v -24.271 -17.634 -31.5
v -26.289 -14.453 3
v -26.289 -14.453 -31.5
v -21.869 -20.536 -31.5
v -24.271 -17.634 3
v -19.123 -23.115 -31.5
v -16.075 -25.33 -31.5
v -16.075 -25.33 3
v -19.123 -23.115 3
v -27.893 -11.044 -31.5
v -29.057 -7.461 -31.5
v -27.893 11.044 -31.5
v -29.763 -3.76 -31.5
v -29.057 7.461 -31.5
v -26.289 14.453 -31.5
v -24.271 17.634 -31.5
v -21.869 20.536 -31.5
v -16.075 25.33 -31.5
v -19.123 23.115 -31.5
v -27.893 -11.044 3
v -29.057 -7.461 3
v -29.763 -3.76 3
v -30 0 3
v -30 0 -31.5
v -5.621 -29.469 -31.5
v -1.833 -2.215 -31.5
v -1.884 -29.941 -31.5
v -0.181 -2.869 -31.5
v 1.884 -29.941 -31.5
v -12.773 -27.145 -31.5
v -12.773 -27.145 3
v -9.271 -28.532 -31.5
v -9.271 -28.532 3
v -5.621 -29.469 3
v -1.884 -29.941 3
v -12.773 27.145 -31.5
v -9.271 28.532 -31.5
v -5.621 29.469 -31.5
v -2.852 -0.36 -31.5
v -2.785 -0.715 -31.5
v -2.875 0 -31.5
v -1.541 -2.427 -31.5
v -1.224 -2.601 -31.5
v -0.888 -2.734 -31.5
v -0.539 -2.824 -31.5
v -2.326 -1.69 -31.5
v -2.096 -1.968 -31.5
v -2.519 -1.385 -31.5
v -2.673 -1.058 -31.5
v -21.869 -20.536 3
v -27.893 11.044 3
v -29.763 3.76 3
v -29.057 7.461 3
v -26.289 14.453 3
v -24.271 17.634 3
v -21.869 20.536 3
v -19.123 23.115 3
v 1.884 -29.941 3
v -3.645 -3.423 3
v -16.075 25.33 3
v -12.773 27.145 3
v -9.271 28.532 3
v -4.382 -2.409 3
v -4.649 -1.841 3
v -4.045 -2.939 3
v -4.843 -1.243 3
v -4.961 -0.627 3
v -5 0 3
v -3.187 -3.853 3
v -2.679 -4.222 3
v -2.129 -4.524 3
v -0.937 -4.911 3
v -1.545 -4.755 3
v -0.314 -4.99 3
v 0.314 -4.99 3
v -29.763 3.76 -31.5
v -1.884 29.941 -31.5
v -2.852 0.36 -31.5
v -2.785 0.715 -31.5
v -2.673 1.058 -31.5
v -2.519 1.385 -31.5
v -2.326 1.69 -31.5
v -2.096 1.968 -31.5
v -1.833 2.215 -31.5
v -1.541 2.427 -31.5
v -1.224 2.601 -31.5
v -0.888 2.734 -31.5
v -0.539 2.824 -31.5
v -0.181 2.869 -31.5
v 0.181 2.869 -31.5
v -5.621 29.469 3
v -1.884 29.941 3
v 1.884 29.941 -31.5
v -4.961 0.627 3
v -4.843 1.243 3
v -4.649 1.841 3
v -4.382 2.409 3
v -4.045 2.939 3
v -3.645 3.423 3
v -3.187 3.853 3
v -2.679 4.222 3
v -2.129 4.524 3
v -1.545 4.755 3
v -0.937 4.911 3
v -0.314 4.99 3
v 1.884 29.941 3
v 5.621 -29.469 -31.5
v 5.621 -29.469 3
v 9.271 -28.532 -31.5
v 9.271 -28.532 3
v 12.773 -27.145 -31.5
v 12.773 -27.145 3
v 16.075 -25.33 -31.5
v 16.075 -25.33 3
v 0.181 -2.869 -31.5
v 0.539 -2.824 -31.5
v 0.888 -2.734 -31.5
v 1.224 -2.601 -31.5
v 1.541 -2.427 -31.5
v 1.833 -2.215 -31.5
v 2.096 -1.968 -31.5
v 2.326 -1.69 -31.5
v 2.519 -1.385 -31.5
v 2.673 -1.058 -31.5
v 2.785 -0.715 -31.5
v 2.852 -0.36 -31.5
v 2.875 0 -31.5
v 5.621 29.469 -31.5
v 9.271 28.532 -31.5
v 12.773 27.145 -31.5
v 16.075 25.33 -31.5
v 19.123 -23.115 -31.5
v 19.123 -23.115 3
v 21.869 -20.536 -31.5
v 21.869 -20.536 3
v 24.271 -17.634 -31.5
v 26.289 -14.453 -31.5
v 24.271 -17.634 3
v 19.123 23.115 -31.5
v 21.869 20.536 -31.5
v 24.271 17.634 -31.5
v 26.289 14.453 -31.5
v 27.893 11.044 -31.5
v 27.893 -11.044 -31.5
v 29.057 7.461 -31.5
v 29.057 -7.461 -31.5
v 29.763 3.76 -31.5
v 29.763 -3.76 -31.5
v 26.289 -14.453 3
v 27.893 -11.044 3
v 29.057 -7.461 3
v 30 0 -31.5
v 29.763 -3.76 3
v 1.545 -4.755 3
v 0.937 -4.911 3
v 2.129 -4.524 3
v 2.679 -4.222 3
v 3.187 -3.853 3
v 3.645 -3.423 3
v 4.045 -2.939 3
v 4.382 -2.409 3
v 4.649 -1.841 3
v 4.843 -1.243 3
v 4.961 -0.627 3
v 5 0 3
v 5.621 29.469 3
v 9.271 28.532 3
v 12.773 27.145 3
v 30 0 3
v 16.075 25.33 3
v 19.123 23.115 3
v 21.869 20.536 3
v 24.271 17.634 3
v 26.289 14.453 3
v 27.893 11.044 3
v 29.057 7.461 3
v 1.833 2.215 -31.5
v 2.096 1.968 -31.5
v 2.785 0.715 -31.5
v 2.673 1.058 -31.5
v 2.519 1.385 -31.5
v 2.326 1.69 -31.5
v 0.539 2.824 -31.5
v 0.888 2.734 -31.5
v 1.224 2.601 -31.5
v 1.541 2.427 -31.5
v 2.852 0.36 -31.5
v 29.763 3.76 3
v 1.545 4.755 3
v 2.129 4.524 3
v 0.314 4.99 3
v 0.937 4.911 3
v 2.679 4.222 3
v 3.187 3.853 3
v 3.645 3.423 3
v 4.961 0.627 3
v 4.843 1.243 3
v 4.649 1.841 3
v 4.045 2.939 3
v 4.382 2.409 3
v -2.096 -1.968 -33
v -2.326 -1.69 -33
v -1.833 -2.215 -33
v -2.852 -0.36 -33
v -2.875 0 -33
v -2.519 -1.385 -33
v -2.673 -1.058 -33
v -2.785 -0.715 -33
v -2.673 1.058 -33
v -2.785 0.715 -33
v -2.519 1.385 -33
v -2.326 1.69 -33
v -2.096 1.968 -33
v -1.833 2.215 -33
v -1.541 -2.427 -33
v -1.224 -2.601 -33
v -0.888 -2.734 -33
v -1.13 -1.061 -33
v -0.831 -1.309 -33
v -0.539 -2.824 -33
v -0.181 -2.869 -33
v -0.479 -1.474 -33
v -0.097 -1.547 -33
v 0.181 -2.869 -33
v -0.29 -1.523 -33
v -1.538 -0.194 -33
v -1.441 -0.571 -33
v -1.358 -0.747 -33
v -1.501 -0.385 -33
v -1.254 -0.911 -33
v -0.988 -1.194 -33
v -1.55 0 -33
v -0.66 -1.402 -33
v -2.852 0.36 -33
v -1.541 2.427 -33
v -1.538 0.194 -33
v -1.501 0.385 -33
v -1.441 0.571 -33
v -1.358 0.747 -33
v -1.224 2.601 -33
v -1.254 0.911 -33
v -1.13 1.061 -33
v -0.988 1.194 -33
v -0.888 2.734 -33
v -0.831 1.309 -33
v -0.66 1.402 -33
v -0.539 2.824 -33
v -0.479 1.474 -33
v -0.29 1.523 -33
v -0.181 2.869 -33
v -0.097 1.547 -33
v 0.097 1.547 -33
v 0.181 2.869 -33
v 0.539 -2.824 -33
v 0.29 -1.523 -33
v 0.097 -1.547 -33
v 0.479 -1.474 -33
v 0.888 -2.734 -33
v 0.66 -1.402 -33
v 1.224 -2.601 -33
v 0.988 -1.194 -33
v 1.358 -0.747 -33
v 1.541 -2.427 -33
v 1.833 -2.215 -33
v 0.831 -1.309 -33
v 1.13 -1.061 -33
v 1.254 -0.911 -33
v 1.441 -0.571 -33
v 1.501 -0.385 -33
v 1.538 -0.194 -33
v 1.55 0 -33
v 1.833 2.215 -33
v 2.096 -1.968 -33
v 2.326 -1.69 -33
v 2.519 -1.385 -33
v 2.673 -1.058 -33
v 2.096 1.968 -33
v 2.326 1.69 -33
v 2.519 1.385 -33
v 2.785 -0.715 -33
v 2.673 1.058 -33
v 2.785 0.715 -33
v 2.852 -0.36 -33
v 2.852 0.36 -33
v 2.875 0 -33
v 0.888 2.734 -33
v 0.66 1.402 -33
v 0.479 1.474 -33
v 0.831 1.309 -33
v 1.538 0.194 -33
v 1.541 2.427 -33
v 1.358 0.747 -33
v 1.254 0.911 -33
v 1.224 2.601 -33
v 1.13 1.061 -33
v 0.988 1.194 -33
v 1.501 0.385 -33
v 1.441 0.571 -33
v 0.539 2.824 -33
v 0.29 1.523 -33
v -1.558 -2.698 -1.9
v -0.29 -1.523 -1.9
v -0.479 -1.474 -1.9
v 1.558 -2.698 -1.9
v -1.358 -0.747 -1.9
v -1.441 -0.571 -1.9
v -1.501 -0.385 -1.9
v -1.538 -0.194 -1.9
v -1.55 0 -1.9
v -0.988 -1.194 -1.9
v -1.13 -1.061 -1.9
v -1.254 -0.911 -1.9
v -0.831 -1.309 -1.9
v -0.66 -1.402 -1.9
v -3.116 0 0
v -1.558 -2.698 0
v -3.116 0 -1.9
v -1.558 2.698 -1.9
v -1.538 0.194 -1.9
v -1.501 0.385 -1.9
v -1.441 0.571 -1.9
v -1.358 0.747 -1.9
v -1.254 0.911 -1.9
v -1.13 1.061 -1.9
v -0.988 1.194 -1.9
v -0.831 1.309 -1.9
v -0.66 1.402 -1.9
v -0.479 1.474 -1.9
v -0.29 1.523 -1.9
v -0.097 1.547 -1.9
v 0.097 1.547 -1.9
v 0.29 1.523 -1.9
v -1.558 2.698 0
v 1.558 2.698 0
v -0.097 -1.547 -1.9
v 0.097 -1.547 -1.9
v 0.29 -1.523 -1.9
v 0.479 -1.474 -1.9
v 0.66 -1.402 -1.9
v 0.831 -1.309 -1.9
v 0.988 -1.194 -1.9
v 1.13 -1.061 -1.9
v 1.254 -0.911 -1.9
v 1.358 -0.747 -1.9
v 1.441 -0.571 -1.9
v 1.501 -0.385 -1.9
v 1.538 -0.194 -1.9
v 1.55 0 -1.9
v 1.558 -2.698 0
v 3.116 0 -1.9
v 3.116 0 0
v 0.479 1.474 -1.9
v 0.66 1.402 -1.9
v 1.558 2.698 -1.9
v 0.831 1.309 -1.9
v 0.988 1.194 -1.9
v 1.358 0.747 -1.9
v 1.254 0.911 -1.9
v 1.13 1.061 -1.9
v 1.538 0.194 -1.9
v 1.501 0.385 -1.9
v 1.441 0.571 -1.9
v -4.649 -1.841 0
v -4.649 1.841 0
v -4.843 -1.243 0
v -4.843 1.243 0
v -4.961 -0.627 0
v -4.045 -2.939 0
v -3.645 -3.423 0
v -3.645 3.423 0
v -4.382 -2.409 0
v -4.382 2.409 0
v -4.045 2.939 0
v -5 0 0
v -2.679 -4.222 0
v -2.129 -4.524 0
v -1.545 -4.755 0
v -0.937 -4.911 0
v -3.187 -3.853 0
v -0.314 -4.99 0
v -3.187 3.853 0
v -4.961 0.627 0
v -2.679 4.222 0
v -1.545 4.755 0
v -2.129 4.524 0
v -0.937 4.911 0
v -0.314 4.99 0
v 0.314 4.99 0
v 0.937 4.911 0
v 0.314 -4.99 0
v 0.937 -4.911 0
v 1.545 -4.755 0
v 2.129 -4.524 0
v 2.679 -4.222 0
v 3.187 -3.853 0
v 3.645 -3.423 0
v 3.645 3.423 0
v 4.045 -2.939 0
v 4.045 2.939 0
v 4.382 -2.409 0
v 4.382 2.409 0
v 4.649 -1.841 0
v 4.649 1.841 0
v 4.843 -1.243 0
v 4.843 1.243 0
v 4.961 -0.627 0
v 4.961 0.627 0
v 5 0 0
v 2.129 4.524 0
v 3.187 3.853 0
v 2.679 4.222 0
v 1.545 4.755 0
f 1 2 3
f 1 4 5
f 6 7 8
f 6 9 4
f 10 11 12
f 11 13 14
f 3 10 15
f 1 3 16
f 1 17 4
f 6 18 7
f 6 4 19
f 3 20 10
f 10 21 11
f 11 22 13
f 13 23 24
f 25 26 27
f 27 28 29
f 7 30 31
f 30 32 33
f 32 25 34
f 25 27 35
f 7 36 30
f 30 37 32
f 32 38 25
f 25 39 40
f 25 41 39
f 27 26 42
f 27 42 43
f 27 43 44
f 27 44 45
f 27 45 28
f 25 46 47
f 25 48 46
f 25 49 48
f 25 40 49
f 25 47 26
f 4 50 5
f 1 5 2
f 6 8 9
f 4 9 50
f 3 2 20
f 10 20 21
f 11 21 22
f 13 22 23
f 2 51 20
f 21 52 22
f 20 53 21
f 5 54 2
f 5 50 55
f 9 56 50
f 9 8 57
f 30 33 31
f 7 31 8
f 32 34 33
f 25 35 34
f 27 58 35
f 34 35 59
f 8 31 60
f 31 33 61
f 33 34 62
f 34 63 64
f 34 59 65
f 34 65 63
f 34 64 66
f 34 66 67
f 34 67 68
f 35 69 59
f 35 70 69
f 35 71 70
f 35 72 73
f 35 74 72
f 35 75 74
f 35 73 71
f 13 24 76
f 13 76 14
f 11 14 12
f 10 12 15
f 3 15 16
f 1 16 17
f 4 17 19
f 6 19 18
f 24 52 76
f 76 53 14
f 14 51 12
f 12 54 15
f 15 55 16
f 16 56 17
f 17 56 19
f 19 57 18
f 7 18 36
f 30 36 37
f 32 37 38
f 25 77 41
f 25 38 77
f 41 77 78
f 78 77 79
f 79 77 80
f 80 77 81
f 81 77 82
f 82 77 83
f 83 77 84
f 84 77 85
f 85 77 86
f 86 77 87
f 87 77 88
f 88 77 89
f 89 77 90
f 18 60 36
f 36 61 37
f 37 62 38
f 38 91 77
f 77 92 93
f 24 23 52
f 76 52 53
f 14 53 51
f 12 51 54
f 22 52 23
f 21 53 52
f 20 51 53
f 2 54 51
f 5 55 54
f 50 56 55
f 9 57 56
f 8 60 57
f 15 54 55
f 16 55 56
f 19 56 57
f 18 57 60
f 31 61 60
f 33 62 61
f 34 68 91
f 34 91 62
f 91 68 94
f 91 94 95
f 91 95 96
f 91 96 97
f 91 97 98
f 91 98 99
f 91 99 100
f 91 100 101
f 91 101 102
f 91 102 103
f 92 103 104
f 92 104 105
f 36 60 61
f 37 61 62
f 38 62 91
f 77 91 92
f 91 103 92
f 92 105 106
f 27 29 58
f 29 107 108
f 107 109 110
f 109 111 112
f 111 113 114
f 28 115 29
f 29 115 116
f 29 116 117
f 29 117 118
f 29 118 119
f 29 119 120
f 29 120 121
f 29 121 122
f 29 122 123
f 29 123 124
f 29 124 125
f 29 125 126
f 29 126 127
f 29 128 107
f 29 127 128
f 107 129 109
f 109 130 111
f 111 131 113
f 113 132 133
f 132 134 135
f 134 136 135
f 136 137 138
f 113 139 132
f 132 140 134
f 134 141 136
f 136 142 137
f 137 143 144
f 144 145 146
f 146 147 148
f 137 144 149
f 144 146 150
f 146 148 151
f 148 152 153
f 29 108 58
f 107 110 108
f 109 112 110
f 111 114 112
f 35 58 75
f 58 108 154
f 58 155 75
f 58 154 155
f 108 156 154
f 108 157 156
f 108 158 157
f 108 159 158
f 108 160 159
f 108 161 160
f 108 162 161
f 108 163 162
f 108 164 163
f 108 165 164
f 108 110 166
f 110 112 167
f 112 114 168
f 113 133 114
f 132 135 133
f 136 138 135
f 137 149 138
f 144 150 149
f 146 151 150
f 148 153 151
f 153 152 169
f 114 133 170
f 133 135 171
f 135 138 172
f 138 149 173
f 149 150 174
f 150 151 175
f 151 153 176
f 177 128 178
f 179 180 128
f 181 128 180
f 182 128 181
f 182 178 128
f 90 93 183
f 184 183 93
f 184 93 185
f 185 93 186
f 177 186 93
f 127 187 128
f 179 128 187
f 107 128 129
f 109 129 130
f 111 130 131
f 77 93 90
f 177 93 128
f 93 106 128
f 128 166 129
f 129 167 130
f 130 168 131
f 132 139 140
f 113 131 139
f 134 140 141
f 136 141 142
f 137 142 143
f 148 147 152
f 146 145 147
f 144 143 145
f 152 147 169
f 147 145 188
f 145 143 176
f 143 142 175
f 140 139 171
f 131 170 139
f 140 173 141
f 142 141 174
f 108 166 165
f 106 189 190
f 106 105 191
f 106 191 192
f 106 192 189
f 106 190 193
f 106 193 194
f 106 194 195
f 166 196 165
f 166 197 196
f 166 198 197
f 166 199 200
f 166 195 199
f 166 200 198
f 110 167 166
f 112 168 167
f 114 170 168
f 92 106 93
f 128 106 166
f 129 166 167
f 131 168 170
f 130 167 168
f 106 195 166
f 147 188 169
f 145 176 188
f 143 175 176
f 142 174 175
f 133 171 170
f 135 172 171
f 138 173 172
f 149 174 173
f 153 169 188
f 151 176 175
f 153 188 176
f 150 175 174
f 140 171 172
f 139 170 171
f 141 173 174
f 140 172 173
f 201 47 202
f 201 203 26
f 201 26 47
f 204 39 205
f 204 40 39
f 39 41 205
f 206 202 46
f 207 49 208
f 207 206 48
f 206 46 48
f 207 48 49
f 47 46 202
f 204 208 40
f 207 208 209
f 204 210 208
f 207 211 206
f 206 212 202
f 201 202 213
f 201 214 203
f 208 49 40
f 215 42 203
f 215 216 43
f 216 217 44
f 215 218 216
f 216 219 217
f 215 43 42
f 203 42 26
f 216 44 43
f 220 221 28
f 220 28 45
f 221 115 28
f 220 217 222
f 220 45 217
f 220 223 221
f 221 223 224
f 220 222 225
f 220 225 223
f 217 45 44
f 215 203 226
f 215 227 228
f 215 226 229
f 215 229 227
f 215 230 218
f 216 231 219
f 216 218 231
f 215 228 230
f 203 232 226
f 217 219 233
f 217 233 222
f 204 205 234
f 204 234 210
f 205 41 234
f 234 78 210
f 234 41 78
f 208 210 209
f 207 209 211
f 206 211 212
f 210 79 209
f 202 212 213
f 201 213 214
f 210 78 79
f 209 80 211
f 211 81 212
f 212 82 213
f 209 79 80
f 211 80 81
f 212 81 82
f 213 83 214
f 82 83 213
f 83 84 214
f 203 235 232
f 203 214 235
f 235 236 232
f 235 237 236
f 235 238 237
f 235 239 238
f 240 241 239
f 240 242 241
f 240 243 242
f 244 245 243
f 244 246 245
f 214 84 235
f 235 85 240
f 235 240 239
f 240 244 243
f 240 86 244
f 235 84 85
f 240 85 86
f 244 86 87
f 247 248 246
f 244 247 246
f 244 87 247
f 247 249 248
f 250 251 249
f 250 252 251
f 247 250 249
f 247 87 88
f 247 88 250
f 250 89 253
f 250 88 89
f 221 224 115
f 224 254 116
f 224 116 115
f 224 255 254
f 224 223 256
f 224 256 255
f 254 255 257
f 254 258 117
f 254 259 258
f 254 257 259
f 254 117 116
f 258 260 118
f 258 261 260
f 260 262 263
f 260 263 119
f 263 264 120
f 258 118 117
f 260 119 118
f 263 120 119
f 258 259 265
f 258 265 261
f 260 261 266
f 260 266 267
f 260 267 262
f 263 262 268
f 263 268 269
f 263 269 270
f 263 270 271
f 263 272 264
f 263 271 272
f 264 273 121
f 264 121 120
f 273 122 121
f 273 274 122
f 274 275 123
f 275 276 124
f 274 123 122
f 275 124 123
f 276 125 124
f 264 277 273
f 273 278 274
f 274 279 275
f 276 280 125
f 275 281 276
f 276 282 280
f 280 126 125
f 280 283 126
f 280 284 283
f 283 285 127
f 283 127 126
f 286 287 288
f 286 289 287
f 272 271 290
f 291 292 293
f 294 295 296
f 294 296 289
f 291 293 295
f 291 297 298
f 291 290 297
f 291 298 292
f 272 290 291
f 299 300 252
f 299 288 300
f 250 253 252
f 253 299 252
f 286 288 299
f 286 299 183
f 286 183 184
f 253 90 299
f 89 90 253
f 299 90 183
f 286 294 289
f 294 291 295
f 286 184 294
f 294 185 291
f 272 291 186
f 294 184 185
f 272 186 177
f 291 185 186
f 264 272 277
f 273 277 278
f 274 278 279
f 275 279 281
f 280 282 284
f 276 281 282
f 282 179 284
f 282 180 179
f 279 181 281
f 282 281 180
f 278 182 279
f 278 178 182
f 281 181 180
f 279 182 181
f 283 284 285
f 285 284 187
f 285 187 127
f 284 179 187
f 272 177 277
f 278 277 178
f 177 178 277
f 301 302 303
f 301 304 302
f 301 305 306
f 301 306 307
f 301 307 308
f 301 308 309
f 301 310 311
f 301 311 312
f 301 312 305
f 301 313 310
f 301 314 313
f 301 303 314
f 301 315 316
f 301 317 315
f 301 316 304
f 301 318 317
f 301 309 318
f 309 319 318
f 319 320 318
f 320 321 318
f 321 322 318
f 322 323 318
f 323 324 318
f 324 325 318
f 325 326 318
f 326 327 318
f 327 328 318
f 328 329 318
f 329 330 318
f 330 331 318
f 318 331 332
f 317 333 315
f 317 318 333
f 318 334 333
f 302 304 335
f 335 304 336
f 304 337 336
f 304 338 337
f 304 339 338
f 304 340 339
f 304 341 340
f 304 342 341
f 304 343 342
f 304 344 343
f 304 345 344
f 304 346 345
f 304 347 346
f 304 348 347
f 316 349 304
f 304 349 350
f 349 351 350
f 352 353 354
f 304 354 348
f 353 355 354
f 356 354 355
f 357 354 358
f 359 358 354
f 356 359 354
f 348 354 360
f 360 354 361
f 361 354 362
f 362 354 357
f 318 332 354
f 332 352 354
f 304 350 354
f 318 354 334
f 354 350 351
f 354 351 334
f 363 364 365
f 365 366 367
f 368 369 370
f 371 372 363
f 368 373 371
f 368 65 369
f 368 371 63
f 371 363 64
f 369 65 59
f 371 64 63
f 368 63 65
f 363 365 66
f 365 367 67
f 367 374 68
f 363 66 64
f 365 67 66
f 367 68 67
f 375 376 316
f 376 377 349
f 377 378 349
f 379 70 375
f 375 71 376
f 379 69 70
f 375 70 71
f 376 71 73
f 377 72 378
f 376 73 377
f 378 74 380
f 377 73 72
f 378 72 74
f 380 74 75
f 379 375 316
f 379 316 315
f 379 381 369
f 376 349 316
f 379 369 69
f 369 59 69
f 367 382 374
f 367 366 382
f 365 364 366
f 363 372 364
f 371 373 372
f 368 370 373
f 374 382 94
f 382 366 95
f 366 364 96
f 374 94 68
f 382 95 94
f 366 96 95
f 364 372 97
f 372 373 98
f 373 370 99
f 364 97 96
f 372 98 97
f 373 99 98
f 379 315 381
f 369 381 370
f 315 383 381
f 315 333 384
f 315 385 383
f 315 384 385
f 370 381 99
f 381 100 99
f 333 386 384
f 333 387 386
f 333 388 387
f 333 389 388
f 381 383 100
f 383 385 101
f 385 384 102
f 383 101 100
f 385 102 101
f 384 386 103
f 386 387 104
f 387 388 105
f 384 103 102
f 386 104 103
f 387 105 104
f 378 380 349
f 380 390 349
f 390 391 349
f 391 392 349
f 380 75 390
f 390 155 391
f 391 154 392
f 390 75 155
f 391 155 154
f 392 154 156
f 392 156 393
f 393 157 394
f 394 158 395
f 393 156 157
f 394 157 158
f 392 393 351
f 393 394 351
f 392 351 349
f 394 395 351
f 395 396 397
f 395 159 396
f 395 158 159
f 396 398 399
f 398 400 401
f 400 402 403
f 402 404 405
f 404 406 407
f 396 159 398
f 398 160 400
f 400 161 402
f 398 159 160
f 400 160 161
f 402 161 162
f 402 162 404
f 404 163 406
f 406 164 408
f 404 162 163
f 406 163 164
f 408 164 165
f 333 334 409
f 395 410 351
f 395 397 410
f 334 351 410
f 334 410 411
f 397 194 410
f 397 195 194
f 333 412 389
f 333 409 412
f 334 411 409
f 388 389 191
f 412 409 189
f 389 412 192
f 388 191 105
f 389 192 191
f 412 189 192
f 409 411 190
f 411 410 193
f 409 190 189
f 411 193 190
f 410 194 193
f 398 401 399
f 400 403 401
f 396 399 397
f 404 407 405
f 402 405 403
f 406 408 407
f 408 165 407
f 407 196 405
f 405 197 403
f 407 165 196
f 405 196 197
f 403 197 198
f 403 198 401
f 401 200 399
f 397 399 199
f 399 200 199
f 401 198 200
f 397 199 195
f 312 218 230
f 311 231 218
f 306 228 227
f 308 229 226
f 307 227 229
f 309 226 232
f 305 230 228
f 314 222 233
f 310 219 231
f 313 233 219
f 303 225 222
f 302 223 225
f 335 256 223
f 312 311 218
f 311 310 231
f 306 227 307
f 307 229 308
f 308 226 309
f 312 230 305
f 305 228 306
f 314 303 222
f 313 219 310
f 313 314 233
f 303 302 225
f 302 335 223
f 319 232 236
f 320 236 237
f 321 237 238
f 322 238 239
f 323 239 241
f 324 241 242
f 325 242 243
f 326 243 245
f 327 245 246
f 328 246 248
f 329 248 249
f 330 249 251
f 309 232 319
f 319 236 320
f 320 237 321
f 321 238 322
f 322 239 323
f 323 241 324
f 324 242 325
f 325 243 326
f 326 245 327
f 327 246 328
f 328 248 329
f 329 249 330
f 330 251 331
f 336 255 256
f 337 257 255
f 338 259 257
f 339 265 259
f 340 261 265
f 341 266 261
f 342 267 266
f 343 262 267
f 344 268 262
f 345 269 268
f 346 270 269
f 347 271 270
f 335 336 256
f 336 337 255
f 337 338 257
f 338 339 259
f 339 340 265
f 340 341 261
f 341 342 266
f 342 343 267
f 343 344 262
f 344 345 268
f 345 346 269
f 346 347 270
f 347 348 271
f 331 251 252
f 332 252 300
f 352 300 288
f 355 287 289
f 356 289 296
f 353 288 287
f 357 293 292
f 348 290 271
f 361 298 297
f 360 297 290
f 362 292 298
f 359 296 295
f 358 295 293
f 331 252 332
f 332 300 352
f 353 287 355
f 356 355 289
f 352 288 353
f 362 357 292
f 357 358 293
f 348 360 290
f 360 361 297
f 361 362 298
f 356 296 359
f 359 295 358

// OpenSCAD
$fn = 50;

difference() {
	union() {
		translate(v = [0, 0, -31.5]) {
			cylinder(h = 34.5, r = 30.0);
		}
		#translate(v = [0, 0, -33.0]) {
			cylinder(h = 33, r = 2.875);
		}
	}
	union() {
		translate(v = [0, 0, 0]) {
			rotate(a = [0, 0, 0]) {
				difference() {
					union() {
						translate(v = [0, 0, -1.9]) {
							linear_extrude(height = 1.9) {
								polygon(points = [[3.1158, 0.0], [1.5579000000000005, 2.698361953111554], [-1.5578999999999994, 2.6983619531115544], [-3.1158, 3.815754496783323e-16], [-1.5579000000000014, -2.6983619531115535], [1.557899999999998, -2.6983619531115552]]);
							}
						}
					}
					union();
				}
			}
		}
		#cylinder(h = 3, r = 5.0);
		#translate(v = [0, 0, -100.0]) {
			cylinder(h = 200, r = 1.55);
		}
	}
}
